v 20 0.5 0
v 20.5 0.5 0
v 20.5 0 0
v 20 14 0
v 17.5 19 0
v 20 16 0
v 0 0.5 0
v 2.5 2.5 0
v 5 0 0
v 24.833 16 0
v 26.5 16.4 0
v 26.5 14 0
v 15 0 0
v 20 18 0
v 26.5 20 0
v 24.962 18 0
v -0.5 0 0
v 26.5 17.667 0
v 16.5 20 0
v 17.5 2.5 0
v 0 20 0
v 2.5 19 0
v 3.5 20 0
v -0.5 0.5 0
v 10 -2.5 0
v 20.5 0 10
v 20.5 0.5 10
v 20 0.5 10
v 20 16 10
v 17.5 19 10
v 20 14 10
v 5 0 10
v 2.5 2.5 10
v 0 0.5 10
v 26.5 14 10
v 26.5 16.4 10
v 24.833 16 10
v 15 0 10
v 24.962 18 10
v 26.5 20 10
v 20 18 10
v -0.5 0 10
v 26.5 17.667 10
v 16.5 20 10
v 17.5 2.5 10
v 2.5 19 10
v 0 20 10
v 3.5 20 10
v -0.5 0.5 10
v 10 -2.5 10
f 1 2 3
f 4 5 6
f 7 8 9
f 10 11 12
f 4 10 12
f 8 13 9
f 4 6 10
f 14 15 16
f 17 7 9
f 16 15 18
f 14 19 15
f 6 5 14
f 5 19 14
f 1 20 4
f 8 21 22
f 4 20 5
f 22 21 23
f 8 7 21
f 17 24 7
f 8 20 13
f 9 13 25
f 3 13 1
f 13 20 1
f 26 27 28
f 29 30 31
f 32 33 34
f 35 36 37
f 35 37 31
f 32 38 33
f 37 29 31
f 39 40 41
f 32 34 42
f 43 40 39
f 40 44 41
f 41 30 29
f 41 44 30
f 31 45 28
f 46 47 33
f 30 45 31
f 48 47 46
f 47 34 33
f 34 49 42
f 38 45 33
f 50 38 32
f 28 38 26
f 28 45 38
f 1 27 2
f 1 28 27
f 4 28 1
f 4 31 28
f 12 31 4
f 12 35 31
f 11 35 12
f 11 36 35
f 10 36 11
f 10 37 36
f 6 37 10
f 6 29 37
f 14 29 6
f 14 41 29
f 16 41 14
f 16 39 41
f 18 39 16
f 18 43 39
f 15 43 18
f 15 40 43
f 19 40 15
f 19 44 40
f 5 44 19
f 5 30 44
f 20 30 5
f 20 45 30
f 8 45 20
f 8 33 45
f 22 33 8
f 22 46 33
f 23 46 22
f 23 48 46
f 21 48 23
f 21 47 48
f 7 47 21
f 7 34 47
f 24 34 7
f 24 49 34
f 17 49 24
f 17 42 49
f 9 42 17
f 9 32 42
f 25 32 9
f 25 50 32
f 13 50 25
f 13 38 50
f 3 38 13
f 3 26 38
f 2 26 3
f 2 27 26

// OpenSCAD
/* (C) Copyright 2017 by Thomas R. Koll
 * LED strip holder is a 3D model released under the Creative Commons Attribution Share Alike license
*/


w = 20;
extrude_width = 10;
t = w - 15;
q = 6.5; // how wide the strip is
k = 2; // thickness of the wires with 1mm space

module top_decoration(w, t) {
    // overhang on the top
    translate([-0.5, 0]) square([w + 1, t/5]);
    // pyramid on the top
    polygon([[w/4, 0], [w/2, -t], [w * 0.75, 0]]);
}

module bottom_decoration(w, t) {
    f = t/5;
    translate([t/2, 0]) polygon([[0, 0], [f, 0], [0, -f]]);
    translate([w -t/2, 0]) polygon([[0, 0], [-f, 0], [0, -f]]);
}

linear_extrude(extrude_width) union() {
    top_decoration(w, t/2);
    difference() {
        square(w); // base body
        translate([t/2, t/2]) {
            square([w-t, w]);
        }
    }
    translate([0, w]) bottom_decoration(w, t);
    
    // clip to hold the cable
    translate([w, w - 3 * k]) difference() {
        square([q, k * 3]);
        difference() {
            translate([0, k]) square([q, k]);
            polygon([[q, k], [q, k * 1.2], [q - k / 1.2, k]]);
            translate([0, k]) polygon([[q, k], [q, k / 1.2], [q - k / 1.3, k]]);
        }
    }
}
